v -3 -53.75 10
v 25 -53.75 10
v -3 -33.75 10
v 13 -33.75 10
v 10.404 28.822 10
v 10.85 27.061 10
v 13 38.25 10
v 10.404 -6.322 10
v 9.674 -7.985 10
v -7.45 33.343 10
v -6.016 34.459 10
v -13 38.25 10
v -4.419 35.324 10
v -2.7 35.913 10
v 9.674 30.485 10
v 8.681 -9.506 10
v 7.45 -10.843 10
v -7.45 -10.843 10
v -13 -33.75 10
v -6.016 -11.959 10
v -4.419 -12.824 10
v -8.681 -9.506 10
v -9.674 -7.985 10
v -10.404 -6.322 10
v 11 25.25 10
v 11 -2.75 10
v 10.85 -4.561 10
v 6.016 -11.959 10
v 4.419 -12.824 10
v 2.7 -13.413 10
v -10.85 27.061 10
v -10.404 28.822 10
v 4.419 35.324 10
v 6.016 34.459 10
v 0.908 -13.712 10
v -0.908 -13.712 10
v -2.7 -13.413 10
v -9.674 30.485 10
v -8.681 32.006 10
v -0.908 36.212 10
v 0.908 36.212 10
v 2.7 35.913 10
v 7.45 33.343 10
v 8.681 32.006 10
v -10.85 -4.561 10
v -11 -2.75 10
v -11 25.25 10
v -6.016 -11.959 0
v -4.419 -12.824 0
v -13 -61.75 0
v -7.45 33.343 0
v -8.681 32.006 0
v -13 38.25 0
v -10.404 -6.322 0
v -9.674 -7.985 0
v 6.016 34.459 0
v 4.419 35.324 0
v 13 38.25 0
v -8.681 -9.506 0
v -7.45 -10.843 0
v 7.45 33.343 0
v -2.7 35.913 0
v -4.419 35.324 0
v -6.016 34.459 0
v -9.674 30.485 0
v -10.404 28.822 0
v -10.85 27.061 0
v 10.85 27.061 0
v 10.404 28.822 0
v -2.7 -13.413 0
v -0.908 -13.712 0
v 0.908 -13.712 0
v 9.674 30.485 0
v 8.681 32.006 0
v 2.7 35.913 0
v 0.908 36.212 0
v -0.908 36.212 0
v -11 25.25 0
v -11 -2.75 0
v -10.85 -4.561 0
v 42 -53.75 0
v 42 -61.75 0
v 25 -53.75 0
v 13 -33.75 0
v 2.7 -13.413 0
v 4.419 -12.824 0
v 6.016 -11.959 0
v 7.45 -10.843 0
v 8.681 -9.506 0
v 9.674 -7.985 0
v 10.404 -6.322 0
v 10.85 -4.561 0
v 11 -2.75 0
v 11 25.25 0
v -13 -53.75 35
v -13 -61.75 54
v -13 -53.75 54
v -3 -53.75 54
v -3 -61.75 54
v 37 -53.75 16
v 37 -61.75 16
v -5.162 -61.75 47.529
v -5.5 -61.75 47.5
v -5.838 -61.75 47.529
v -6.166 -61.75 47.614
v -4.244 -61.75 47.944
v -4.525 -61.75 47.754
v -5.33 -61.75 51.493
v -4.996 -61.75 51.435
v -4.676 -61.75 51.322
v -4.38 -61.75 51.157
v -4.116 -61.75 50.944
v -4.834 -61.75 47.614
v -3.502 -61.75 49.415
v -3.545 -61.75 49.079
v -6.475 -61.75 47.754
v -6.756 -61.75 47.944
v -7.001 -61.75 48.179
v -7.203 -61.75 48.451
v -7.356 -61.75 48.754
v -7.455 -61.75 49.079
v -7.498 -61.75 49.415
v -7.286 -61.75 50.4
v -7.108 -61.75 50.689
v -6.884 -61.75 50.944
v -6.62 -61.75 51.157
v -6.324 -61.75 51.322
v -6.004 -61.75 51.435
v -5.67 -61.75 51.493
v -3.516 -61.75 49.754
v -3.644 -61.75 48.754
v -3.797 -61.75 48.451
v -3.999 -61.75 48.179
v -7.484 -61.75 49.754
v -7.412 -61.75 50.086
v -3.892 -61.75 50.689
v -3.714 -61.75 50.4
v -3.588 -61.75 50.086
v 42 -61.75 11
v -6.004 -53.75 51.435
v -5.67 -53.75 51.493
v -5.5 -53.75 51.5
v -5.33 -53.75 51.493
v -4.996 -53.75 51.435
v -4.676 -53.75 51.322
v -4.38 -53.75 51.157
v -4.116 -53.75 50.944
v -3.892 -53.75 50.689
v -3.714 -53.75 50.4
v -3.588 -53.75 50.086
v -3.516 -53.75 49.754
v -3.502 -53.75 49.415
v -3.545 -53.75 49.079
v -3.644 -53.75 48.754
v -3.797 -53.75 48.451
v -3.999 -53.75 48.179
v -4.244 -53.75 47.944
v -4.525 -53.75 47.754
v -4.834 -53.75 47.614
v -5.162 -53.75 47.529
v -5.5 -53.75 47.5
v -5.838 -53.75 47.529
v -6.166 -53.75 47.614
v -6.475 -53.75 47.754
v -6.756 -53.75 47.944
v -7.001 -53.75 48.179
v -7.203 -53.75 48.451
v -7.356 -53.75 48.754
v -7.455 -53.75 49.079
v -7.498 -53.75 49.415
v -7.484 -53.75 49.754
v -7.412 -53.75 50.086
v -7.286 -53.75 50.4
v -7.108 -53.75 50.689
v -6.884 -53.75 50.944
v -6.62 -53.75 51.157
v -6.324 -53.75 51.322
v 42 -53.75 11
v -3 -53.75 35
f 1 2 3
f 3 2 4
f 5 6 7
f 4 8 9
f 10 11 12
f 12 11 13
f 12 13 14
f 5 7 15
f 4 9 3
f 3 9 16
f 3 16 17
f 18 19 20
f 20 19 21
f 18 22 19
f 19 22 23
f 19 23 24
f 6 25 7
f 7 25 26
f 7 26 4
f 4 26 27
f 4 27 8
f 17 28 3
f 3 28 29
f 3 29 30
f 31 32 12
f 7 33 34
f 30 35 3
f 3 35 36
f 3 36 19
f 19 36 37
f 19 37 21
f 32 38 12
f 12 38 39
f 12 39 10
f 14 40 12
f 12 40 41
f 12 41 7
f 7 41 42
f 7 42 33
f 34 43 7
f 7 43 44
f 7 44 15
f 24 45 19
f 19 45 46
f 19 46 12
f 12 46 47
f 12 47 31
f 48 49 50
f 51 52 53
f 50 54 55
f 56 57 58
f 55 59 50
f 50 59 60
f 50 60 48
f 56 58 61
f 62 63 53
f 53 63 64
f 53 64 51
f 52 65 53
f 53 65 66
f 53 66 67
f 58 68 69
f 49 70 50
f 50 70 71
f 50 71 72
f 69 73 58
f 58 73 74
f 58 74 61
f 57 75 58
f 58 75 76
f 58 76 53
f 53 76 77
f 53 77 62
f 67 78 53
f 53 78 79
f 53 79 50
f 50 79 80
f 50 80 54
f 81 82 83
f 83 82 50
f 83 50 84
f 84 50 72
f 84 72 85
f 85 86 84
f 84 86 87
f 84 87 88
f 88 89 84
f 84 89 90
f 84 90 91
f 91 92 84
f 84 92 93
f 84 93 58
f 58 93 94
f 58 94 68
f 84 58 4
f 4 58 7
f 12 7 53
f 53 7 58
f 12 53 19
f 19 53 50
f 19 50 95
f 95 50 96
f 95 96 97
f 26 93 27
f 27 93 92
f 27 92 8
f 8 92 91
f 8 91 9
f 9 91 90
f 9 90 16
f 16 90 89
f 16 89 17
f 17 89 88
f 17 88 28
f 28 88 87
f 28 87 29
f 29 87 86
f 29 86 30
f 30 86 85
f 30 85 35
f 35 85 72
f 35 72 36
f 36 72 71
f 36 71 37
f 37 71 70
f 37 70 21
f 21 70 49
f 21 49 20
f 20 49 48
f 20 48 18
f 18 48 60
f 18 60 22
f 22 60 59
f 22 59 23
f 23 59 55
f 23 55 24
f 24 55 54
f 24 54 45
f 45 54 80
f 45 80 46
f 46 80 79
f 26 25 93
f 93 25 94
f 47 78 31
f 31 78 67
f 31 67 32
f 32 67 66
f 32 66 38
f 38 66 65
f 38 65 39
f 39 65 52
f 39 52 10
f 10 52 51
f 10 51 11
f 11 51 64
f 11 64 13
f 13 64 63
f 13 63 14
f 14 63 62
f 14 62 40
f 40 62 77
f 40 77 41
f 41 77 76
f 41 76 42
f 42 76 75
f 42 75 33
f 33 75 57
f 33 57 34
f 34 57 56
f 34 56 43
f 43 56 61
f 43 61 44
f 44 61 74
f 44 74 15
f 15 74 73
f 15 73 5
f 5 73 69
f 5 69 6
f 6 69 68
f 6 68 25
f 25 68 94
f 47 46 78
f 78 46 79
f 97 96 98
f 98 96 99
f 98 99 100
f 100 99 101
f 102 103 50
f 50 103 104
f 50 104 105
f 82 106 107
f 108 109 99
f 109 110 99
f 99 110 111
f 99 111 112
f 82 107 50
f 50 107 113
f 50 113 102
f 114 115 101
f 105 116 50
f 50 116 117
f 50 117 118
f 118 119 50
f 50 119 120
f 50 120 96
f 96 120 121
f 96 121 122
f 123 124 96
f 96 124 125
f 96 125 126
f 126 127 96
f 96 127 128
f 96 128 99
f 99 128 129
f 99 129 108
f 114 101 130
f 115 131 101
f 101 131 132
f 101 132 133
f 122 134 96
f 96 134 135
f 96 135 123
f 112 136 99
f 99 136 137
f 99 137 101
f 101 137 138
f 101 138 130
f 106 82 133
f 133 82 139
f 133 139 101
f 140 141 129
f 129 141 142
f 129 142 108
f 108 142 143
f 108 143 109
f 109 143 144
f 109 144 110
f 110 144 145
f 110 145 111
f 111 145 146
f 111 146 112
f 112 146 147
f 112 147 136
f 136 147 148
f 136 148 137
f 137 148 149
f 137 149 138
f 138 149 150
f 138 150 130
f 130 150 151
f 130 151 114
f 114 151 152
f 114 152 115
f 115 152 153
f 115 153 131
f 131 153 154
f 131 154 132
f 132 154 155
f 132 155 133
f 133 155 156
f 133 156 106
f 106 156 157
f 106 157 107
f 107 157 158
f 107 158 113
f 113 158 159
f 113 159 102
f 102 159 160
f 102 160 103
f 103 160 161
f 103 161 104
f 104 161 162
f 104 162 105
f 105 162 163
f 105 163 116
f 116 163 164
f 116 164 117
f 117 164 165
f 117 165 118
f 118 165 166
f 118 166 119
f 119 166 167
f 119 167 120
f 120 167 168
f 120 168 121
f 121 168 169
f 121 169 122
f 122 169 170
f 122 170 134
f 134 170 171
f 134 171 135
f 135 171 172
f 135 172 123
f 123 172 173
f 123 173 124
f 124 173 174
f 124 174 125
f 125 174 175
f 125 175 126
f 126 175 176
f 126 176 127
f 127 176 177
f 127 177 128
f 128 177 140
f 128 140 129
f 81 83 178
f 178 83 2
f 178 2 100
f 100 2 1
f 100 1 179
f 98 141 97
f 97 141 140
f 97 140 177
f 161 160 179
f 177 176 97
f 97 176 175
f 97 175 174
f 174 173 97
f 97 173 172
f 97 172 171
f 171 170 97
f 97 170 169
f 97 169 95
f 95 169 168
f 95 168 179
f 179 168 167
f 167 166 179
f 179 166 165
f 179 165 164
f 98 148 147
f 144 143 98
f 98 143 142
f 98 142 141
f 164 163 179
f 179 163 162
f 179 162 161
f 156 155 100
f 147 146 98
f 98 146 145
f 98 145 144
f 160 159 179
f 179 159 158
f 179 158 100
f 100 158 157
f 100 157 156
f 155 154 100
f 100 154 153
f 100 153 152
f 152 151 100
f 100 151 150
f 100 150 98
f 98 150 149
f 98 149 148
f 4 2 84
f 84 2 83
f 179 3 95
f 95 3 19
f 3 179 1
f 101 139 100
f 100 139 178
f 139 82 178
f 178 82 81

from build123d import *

# Parameters (mm, degrees)
SKETCH_2_W           = 26
SKETCH_2_H           = 97
EXTRUDE_1_DEPTH      = 10
CUT_EXTRUDE_11_DEPTH = 10
EXTRUDE_2_DEPTH      = 3
SKETCH_8_R           = 2
CUT_EXTRUDE_12_DEPTH = 3
EXTRUDE_3_DEPTH      = 5
CUT_EXTRUDE_START    = -10
SKETCH_10_R          = 2
CUT_EXTRUDE_13_DEPTH = 10
EXTRUDE_4_DEPTH      = 10
EXTRUDE_5_DEPTH      = 10
EXTRUDE_6_DEPTH      = 8


with BuildPart() as part:
    # 草图2 → 凸台-拉伸1 (new body)
    with BuildSketch(Plane.XY):
        with Locations((0, -10.25)):
            Rectangle(SKETCH_2_W, SKETCH_2_H)
    extrude(amount=EXTRUDE_1_DEPTH)

    # 草图3 → 切除-拉伸11 (cut)
    with BuildSketch(Plane.XY):
        with BuildLine():
            Line((-11, -2.75), (-11, 25.25))
            ThreePointArc((-11, 25.25), (0, 36.25), (11, 25.25))
            Line((11, 25.25), (11, -2.75))
            ThreePointArc((11, -2.75), (0, -13.75), (-11, -2.75))
        make_face()
    extrude(amount=CUT_EXTRUDE_11_DEPTH, mode=Mode.SUBTRACT)

    # 草图4 → 凸台-拉伸2 (add)
    with BuildSketch(Plane.XZ.offset(58.75)):
        Polygon((-13, 0), (37, 0), (37, 16), (-3, 54), (-13, 54), align=None)
    extrude(amount=EXTRUDE_2_DEPTH)

    # 草图8 → 切除-拉伸12 (cut)
    with BuildSketch(Plane.XZ.offset(61.75)):
        with Locations(Location((-5.5, 49.5, 0), (0, 0, 270))):
            Circle(SKETCH_8_R)
    extrude(amount=-CUT_EXTRUDE_12_DEPTH, mode=Mode.SUBTRACT)

    # 草图9 → 凸台-拉伸3 (add)
    with BuildSketch(Plane(origin=(0, -58.75, 0), x_dir=(1, 0, 0), z_dir=(0, 1, 0))):
        Polygon((-13, -10), (-13, -54), (-3, -54), (37, -16), (37, 0), (13, 0), (13, -10), align=None)
    extrude(amount=EXTRUDE_3_DEPTH)

    # 草图10 → 切除-拉伸13 (cut)
    with BuildSketch(Plane(origin=(0, -53.75, 0), x_dir=(1, 0, 0), z_dir=(0, 1, 0)).offset(CUT_EXTRUDE_START)):
        with Locations(Location((-5.5, -49.5, 0), (0, 0, 90))):
            Circle(SKETCH_10_R)
    extrude(amount=CUT_EXTRUDE_13_DEPTH, mode=Mode.SUBTRACT)

    # 草图11 → 凸台-拉伸4 (add)
    with BuildSketch(Plane(origin=(0, 0, 0), x_dir=(-1, 0, 0), z_dir=(0, 0, -1))):
        Polygon((-13, -33.75), (-13, -53.75), (-25, -53.75), align=None)
    extrude(amount=-EXTRUDE_4_DEPTH)

    # 草图12 → 凸台-拉伸5 (add)
    with BuildSketch(Plane.ZY.offset(13)):
        Polygon((10, -53.75), (35, -53.75), (10, -33.75), align=None)
    extrude(amount=-EXTRUDE_5_DEPTH)

    # 草图13 → 凸台-拉伸6 (add)
    with BuildSketch(Plane(origin=(0, -53.75, 0), x_dir=(1, 0, 0), z_dir=(0, 1, 0))):
        Polygon((37, 0), (42, 0), (42, -11), (37, -16), align=None)
    extrude(amount=-EXTRUDE_6_DEPTH)


solid = part.part
